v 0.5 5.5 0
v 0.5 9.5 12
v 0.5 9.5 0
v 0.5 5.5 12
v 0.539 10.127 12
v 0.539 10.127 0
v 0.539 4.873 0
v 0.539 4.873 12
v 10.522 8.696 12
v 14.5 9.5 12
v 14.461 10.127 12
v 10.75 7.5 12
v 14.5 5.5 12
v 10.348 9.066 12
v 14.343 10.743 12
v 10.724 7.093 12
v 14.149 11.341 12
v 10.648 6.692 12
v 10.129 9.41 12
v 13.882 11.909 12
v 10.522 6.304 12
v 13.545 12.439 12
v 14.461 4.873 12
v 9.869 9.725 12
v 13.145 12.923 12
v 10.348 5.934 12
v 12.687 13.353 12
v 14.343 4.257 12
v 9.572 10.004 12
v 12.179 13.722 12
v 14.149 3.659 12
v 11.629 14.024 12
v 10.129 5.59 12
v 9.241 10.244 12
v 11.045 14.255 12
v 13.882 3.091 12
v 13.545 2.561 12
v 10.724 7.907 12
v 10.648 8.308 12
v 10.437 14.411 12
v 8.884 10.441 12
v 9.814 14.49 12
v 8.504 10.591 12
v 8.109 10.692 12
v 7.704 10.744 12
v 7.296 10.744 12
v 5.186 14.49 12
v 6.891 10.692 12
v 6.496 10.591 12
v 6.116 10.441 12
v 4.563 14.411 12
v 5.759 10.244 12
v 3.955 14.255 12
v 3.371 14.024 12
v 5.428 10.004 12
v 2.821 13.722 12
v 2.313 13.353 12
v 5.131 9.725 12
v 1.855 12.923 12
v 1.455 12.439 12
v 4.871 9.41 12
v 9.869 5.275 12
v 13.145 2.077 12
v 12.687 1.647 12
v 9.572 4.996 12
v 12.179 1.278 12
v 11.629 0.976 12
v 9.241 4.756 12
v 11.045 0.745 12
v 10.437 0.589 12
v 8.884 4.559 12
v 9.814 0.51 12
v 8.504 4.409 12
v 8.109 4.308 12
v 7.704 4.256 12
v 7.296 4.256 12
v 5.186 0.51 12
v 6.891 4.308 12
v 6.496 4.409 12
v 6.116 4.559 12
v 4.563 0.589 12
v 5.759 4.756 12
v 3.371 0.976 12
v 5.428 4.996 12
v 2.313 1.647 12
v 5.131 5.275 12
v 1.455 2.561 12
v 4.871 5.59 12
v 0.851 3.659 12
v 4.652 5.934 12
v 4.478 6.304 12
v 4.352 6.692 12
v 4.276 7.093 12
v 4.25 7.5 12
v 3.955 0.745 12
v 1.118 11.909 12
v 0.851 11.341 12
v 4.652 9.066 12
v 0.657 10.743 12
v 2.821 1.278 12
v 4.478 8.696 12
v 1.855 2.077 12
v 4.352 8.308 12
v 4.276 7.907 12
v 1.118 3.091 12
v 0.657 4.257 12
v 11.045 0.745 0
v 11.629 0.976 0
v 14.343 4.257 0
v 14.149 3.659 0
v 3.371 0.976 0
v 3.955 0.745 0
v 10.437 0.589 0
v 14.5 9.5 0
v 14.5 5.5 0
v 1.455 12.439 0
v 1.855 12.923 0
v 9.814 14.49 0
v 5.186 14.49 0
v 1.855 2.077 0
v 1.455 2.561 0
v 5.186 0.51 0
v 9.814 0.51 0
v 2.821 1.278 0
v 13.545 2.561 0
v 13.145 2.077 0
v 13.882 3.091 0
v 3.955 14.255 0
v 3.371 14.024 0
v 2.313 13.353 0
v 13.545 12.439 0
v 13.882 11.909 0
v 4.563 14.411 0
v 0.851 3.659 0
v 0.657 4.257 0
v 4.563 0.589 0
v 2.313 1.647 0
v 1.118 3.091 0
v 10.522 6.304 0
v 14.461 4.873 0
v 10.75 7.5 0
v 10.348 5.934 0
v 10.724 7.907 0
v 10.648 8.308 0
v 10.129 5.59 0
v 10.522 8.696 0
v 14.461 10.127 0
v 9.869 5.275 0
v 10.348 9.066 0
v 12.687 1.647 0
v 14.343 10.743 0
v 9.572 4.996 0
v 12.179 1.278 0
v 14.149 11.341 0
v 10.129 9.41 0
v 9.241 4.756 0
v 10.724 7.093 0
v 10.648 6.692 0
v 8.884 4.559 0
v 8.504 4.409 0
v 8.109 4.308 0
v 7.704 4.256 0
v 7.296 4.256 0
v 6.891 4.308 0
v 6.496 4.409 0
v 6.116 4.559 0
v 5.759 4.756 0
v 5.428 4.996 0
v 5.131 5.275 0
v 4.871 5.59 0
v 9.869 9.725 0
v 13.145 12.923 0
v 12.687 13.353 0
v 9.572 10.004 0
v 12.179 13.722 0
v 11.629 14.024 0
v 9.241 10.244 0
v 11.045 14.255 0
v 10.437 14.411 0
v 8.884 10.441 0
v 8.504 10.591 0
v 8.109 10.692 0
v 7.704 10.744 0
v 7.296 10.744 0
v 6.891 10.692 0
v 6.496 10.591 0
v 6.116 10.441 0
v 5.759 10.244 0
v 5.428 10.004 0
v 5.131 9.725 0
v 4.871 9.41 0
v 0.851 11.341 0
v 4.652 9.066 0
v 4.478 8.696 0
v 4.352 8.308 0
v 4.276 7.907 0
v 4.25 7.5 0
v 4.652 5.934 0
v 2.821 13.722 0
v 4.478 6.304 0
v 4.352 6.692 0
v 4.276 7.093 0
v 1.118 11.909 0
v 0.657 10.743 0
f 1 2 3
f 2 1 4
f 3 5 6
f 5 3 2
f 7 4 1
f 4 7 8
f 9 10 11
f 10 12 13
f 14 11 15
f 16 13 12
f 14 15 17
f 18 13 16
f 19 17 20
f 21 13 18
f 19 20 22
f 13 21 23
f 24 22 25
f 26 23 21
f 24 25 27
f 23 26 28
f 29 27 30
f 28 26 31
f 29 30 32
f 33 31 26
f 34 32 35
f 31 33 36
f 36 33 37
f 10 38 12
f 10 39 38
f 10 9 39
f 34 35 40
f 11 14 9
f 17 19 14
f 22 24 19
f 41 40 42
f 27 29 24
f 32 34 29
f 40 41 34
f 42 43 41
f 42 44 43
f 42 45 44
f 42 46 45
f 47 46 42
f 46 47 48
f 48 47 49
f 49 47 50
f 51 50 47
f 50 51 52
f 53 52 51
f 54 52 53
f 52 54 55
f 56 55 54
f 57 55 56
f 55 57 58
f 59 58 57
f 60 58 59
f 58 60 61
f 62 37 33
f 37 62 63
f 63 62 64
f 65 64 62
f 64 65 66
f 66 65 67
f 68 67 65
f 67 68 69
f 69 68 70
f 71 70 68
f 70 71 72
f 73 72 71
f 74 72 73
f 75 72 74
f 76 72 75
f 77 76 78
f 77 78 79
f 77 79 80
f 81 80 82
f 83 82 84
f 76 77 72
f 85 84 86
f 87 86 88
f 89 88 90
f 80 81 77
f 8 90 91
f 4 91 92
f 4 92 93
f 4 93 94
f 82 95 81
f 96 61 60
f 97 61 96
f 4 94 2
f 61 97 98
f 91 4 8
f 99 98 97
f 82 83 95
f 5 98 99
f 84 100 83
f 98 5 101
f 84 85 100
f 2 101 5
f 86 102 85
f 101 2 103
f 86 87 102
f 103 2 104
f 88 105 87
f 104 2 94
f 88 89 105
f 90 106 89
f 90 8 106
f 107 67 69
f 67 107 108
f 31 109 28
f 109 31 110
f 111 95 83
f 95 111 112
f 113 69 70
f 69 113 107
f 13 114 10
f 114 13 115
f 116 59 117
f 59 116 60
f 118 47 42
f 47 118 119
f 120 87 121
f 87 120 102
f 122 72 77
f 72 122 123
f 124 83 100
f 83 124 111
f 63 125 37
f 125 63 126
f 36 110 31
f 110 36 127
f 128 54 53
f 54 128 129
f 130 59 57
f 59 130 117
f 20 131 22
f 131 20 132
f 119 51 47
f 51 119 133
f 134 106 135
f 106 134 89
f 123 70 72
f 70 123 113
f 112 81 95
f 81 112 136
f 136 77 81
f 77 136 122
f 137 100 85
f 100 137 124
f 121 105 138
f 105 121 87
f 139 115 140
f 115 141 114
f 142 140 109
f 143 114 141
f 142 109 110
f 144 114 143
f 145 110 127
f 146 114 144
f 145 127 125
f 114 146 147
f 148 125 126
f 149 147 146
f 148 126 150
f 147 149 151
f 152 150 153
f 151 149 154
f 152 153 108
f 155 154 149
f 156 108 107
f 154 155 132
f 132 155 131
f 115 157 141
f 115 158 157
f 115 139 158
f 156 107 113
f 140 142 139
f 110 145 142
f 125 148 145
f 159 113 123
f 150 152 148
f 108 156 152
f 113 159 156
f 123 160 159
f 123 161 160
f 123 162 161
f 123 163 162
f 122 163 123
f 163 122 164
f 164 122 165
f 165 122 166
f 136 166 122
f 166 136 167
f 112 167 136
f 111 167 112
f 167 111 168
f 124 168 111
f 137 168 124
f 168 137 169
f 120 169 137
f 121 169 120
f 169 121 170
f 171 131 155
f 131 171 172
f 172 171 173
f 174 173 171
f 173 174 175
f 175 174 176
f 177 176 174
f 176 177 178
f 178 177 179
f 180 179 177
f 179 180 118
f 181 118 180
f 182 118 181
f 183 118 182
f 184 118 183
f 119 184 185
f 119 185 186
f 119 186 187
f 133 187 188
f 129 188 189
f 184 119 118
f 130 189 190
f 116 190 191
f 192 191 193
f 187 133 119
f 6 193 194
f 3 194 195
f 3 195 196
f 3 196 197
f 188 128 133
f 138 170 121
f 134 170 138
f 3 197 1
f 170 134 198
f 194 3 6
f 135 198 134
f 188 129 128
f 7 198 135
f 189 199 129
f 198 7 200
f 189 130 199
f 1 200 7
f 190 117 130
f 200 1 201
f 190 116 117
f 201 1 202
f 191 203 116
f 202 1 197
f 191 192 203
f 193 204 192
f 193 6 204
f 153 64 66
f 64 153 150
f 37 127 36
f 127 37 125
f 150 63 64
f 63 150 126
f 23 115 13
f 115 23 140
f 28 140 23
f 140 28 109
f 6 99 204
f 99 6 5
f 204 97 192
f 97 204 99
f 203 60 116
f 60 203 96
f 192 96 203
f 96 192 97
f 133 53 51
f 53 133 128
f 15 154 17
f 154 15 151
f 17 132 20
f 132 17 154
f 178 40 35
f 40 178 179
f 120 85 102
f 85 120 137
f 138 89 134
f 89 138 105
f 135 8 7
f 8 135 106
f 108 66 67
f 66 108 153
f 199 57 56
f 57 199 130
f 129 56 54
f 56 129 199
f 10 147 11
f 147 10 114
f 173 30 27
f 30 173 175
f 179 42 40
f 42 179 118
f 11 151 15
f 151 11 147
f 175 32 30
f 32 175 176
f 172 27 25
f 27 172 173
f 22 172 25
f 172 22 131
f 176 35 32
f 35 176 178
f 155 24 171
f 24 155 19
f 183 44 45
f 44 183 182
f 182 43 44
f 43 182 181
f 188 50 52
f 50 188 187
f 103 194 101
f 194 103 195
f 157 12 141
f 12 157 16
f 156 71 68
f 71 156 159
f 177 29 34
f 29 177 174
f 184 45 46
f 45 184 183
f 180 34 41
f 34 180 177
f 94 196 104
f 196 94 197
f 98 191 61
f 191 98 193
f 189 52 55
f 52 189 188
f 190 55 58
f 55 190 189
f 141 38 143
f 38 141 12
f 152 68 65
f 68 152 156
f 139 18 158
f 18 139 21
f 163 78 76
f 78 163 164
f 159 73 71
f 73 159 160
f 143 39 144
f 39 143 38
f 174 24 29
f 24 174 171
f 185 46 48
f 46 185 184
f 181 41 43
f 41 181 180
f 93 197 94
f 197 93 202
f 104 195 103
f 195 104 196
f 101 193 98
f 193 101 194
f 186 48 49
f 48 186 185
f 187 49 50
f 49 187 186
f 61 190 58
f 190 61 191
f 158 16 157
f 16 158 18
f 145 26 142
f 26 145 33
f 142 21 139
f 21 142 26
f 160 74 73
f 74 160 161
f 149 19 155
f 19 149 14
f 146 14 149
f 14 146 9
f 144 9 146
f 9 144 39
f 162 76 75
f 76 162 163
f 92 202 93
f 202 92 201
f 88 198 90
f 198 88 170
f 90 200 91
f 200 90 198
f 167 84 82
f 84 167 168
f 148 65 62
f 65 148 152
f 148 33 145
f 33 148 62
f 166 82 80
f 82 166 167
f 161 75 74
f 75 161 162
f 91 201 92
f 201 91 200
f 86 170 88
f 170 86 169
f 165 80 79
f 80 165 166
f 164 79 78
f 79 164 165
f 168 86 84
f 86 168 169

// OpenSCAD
// Generated by SolidPython 1.1.3 on 2023-01-30 14:07:09
$fn = 50;


difference() {
	union() {
		translate(v = [7.5000000000, 7.5000000000, 0]) {
			rotate(a = [0, 0, 0]) {
				hull() {
					translate(v = [-2.0000000000, 2.0000000000, 0]) {
						rotate(a = [0, 0, 0]) {
							translate(v = [0, 0, 0]) {
								rotate(a = [0, 0, 0]) {
									cylinder(h = 12, r = 5);
								}
							}
						}
					}
					translate(v = [2.0000000000, 2.0000000000, 0]) {
						rotate(a = [0, 0, 0]) {
							translate(v = [0, 0, 0]) {
								rotate(a = [0, 0, 0]) {
									cylinder(h = 12, r = 5);
								}
							}
						}
					}
					translate(v = [-2.0000000000, -2.0000000000, 0]) {
						rotate(a = [0, 0, 0]) {
							translate(v = [0, 0, 0]) {
								rotate(a = [0, 0, 0]) {
									cylinder(h = 12, r = 5);
								}
							}
						}
					}
					translate(v = [2.0000000000, -2.0000000000, 0]) {
						rotate(a = [0, 0, 0]) {
							translate(v = [0, 0, 0]) {
								rotate(a = [0, 0, 0]) {
									cylinder(h = 12, r = 5);
								}
							}
						}
					}
				}
			}
		}
	}
	union() {
		translate(v = [7.5000000000, 7.5000000000, 0]) {
			rotate(a = [0, 0, 0]) {
				translate(v = [0, 0, -50]) {
					rotate(a = [0, 0, 0]) {
						cylinder(h = 100, r = 3.2500000000);
					}
				}
			}
		}
	}
}
/***********************************************
*********      SolidPython code:      **********
************************************************
 
from solid import *
import os
import subprocess

import oomB

import opsc_library_gen

mode = "laser"
#mode = "3d_print"

defined_objects = {}

radius_dict = {}
countersunk_dict = {}


def set_mode(m):
    global mode
    mode = m
    radius_dict['M6'] = 6.5/2
    radius_dict['M3'] = 3.3/2
    if mode == "laser":
        radius_dict['M6'] = 6/2
        radius_dict['M3'] = 3/2

    countersunk_dict['M3'] = {}
    countersunk_dict['M3']['little_rad'] = radius_dict['M3']
    countersunk_dict['M3']['big_rad'] = (5.5+0.6)/2
    if mode == "laser":
        countersunk_dict['M3']['big_rad'] = (4.75+0.6)/2
        countersunk_dict['M3']['little_rad'] = (4.75+0.6)/2

    countersunk_dict['M3']['height'] = 1.7


def opsc_make_object(filename, objects, save_type="none",resolution=50, layers = 1, tilediff = 200, mode="laser"):
    set_mode(mode)
    save_type = save_type.lower()
    os.makedirs(os.path.dirname(filename), exist_ok=True)
    final_object = opsc_get_object(objects)
    # Save the final object to the specified filename    
    scad_render_to_file(final_object, filename, file_header='$fn = %s;' % resolution, include_orig_code=True)
    if mode == "laser":
        filename_laser = filename.replace(".scad","-flat.scad")
        scad_render_to_file(getLaser(final_object, layers=layers, tilediff=tilediff), filename_laser, file_header='$fn = %s;' % resolution, include_orig_code=True)
        if save_type == "all":
            saveToAll(filename_laser)
        elif save_type == "dxf":
            saveToDxf(filename_laser)
    if save_type == "all":
        saveToAll(filename)
    elif save_type == "dxf":
        saveToDxf(filename)


def opsc_get_object(objects):
    # Create the solidpython objects
    positive_objects = [get_opsc_item(obj) for obj in objects if obj['type'] == 'positive']
    negative_objects = [get_opsc_item(obj) for obj in objects if obj['type'] == 'negative']
    # Union the positive objects
    positive_object = union()(*positive_objects)
    # Union the negative objects
    negative_object = union()(*negative_objects)
    # Create the final object by subtracting the negative objects from the positive objects
    return difference()(positive_object, negative_object)

def get_opsc_item(params):
    # A dictionary to map radius string values to numerical values
    #radius_dict = {'small': 5, 'medium': 10, 'large': 15}
    # An array of function names for basic shapes
    basic_shapes = ['cube', 'sphere', 'cylinder']
    
    # An array of function names for other shapes
    other_shapes = ['hole', 'slot', 'rounded_rectangle', 'countersunk']
    


    # Convert radius to r if present, and remove radius from the params dictionary
    if 'radius' in params:
        if isinstance(params['radius'], str):
            # Use the radius_dict to map the radius string value to a numerical value
            params['r'] = radius_dict[params['radius']]
        else:
            params['r'] = params['radius']
        del params['radius']
    

    # Check if the object type is a basic shape
    if params['shape'] in basic_shapes:
        # Remove shape and unexpected dictionary values
        allowed_keys = {'size', 'r', 'r1', 'r2', 'd', 'h', 'rw', 'rh', 'dw', 'dh'}
        shape_params = {k: v for k, v in params.items() if k in allowed_keys}

        # Call the corresponding function for the shape parameter, using ** notation to pass the shape_params dictionary as keyword arguments
        return get_opsc_transform(params,globals()[params['shape']](**shape_params))
    
    # If the object type is not a basic shape, check if it's a defined object or one of the other shapes
    elif params['shape'] in other_shapes:
        # Call the corresponding function for the shape parameter, passing the params dictionary as an argument
        p2 = copy.deepcopy(params)
        p2["pos"] = [0,0,0]
        return get_opsc_transform(params,globals()[params['shape']](p2))
    
    # If the object is not a basic shape or a defined object, try to import it from a .scad file
    else:
        obj = defined_objects[params['shape']]
        return get_opsc_transform(params,obj)

def get_opsc_transform(params, solid_obj):
    # Rotate the object based on the 'rot' field in the params dictionary, or the 'rotX', 'rotY', and 'rotZ' fields if 'rot' is not present
    rot = params.get('rot', [])
    if rot:
        rotX, rotY, rotZ = rot
    else:
        rotX = params.get('rotX', 0)
        rotY = params.get('rotY', 0)
        rotZ = params.get('rotZ', 0)
    solid_obj = rotate([rotX, rotY, rotZ])(solid_obj)

    # Translate the object based on the 'pos' field in the params dictionary, or the 'x', 'y', and 'z' fields if 'pos' is not present
    pos = params.get('pos', [])
    if pos:
        x, y, z = pos
    else:
        x = params.get('x', 0)
        y = params.get('y', 0)
        z = params.get('z', 0)
    solid_obj = translate([x, y, z])(solid_obj)
    return solid_obj


import random

def opsc_easy_array(type, shape, repeats, pos_start, shift_arr, **kwargs):
    for i in range(0,3):
        repeats.append(1)
        pos_start.append(0)
        shift_arr.append(0)
    return_objects = []

    for x in range(0,repeats[0]):
        for y in range(0,repeats[1]):
            for z in range(0,repeats[2]):
                return_objects.append(opsc_easy(type, shape, pos=[pos_start[0]+x*shift_arr[0],pos_start[1]+y*shift_arr[1],pos_start[2]+z*shift_arr[2]], **kwargs))
    return return_objects                



def opsc_easy(type, shape, **kwargs):
    obj = {
        'type': type,
        'shape': shape
    }
    for param in ['size', 'r', 'r1', 'r2', 'd', 'h', 'rw', 'rh', 'dw', 'dh', 'pos', 'x', 'y', 'z', 'rot', 'rotX', 'rotY', 'rotZ', "w"]:
        if param in kwargs:
            obj[param] = kwargs[param]
    return obj

def hole(params):
    p2 = copy.deepcopy(params)  
    # Check if the radius is a string and replace it with the corresponding value from the dictionary
    if isinstance(p2['r'], str):
        p2['r'] = radius_dict[p2['r']]
    
    # Set the height to 100 if not specified
    if 'h' not in p2:
        p2['h'] = 100
        p2["pos"] = [0,0,-50]
    p2["center"] = True
    # Create the cylinder object
    p2["shape"] = "cylinder"
    p2["type"] = "positive"

    return get_opsc_item(p2)

import copy

def countersunk(params):
    p2 = copy.deepcopy(params)
    counter_rad = p2['r']
    p2['r'] = radius_dict[p2['r']]
    hp = copy.deepcopy(p2)
    hp["type"] = "positive"
    hp["shape"] = "hole"
    del hp["rot"]
    hol = get_opsc_item(hp)
    
    cp = copy.deepcopy(p2)
    cp["h"] = countersunk_dict[counter_rad]["height"]
    cp["r2"] = countersunk_dict[counter_rad]["little_rad"]
    cp["r1"] = countersunk_dict[counter_rad]["big_rad"]
    del cp["r"]
    del cp["rot"]
    cp["type"] = "positive"
    cp["shape"] = "cylinder"
    cp["pos"] = [0,0,0]

    top = get_opsc_item(cp)
    return union()(hol,top)



def slot(params):  
    p2 = copy.deepcopy(params) 
    if isinstance(p2['r'], str):
        p2['r'] = radius_dict[p2['r']]
    p2["type"] = "positive"
    p2["shape"] = "hole"
    del p2["rot"]
    p2["pos"] = [0,0,0]
    left = copy.deepcopy(p2)
    right = copy.deepcopy(p2)
    left["pos"][0] = p2["w"] / 2 - p2["r"] 
    
    right["pos"][0] = -p2["w"] / 2 + p2["r"] 
    pass
    leftObj = get_opsc_item(left)
    rightObj = get_opsc_item(right)
    return hull()(leftObj, rightObj)

def rounded_rectangle(params):   
    p2 = copy.deepcopy(params) 
    p2["h"] = p2["size"][2]
    p2["pos"] = p2.get("pos", [0, 0, 0]) 
    p2["type"] = "positive"
    p2["shape"] = "hole"
    p2["pos"] = [0,0,0]
    
    if 'rot' in p2:
        del p2["rot"]   
    if 'r' not in p2:
        p2["r"] = 5 
    tl = copy.deepcopy(p2)
    tr = copy.deepcopy(p2)
    bl = copy.deepcopy(p2)
    br = copy.deepcopy(p2)
    tl["pos"][0] = -(p2["size"][0] - p2["r"]*2)/2
    tl["pos"][1] = (p2["size"][1] - p2["r"]*2)/2
    tr["pos"][0] = (p2["size"][0] - p2["r"]*2)/2
    tr["pos"][1] = (p2["size"][1] - p2["r"]*2)/2
    bl["pos"][0] = -(p2["size"][0] - p2["r"]*2)/2
    bl["pos"][1] = -(p2["size"][1] - p2["r"]*2)/2
    br["pos"][0] = (p2["size"][0] - p2["r"]*2)/2
    br["pos"][1] = -(p2["size"][1] - p2["r"]*2)/2
    del tl["size"]
    del tr["size"]
    del bl["size"]
    del br["size"]
    tlo = get_opsc_item(tl)
    tro = get_opsc_item(tr)
    blo = get_opsc_item(bl)
    bro = get_opsc_item(br)    
    return hull()(tlo, tro, blo, bro)



def import_scad_object(filename):
    # Import the .scad file and convert it to a solidpython object
    #filename = "parts"
    obj = import_scad(filename)
    return obj.main()
    


import os
import solid as solidpython

# A dictionary to store the defined objects


def load_scad_objects():
    opsc_library_gen.gen_library(defined_objects)

import random

def test(num_objects):
    objects = []
    for i in range(num_objects):
        # Choose a random shape
        #shape = random.choice(['cube', 'sphere', 'cylinder', 'hole', 'slot', "rounded_rectangle"])
        shape = random.choice(["rounded_rectangle"])

        # Choose a random type
        type = random.choice(['positive', 'negative'])
        
        # Create an empty object dictionary
        obj = {'shape': shape, 'type': type}
        
        # Set shape-specific parameters
        if obj['shape'] in ['cube']:
            obj['size'] =  [random.uniform(5, 15), random.uniform(5, 15), random.uniform(5, 15)]
        if obj['shape'] in ['rounded_rectangle']:
            obj['size'] =  [random.uniform(5, 15), random.uniform(5, 15), random.uniform(5, 15)]
            obj['r'] = random.uniform(0.5, 5)
        elif obj['shape'] == 'sphere':
            obj['r'] = random.uniform(5, 15)
        elif obj['shape'] in ['cylinder', 'hole']:
            obj['r'] = random.uniform(0.5, 5)
            obj['h'] = random.uniform(5, 15)
        elif obj['shape'] == 'slot':
            obj['r'] = random.uniform(0.5, 5)
            obj['h'] = random.uniform(5, 15)
            obj['w'] = random.uniform(5, 15)
        
        # Set a random position and rotation
        obj['pos'] = [random.uniform(-20, 20), random.uniform(-20, 20), random.uniform(-20, 20)]
        obj['rot'] = [random.uniform(-180, 180), random.uniform(-180, 180), random.uniform(-180, 180)]
        
        # Add the object to the list
        objects.append(obj)
    return objects

####### old file saving
def saveToAll(fileIn):
    saveToDxf(fileIn)
    saveToPng(fileIn)
    saveToStl(fileIn)
    saveToSvg(fileIn)

def saveToDxf(fileIn, fileOut="", copy_to_laser=True):
    if fileOut == "":
        fileOut = fileIn.replace(".scad",".dxf")
    saveToFile(fileIn, fileOut)


    
def saveToPng(fileIn, fileOut="",extra="--render"):
    if fileOut == "":
        fileOut = fileIn.replace(".scad",".png")
    saveToFile(fileIn, fileOut)

def saveToStl(fileIn, fileOut=""):
    if fileOut == "":
        fileOut = fileIn.replace(".scad",".stl")
    saveToFile(fileIn, fileOut)
    
def saveToSvg(fileIn, fileOut=""):
    if fileOut == "":
        fileOut = fileIn.replace(".scad",".svg")
    saveToFile(fileIn, fileOut)

def saveToFile(fileIn, fileOut,extra=""):
    #extra = extra + " --colorscheme Tomorrow"

    launchStr = 'openscad -o "' + fileOut + '"' + extra + ' "' + fileIn + '"'
    if ".png" in fileOut:
        launchStr = launchStr + " --render"
    print("            saveToFile launch string: " + launchStr)
    subprocess.run(launchStr)
    x=0

def getLaser(final_object,start=1.5,layers=1,thickness=3,tilediff=200):
        rv= []

        for x in range(layers):
            rv.append(translate([0,x*tilediff,0])(
                    projection()(
                        intersection()(translate([-500,-500,start+x*thickness])(cube(size=[1000,1000,0.1])),
                            final_object
                        )
                    )
            )
            )
            
        return union()(rv)

set_mode("laser")
load_scad_objects() 
 
************************************************/
